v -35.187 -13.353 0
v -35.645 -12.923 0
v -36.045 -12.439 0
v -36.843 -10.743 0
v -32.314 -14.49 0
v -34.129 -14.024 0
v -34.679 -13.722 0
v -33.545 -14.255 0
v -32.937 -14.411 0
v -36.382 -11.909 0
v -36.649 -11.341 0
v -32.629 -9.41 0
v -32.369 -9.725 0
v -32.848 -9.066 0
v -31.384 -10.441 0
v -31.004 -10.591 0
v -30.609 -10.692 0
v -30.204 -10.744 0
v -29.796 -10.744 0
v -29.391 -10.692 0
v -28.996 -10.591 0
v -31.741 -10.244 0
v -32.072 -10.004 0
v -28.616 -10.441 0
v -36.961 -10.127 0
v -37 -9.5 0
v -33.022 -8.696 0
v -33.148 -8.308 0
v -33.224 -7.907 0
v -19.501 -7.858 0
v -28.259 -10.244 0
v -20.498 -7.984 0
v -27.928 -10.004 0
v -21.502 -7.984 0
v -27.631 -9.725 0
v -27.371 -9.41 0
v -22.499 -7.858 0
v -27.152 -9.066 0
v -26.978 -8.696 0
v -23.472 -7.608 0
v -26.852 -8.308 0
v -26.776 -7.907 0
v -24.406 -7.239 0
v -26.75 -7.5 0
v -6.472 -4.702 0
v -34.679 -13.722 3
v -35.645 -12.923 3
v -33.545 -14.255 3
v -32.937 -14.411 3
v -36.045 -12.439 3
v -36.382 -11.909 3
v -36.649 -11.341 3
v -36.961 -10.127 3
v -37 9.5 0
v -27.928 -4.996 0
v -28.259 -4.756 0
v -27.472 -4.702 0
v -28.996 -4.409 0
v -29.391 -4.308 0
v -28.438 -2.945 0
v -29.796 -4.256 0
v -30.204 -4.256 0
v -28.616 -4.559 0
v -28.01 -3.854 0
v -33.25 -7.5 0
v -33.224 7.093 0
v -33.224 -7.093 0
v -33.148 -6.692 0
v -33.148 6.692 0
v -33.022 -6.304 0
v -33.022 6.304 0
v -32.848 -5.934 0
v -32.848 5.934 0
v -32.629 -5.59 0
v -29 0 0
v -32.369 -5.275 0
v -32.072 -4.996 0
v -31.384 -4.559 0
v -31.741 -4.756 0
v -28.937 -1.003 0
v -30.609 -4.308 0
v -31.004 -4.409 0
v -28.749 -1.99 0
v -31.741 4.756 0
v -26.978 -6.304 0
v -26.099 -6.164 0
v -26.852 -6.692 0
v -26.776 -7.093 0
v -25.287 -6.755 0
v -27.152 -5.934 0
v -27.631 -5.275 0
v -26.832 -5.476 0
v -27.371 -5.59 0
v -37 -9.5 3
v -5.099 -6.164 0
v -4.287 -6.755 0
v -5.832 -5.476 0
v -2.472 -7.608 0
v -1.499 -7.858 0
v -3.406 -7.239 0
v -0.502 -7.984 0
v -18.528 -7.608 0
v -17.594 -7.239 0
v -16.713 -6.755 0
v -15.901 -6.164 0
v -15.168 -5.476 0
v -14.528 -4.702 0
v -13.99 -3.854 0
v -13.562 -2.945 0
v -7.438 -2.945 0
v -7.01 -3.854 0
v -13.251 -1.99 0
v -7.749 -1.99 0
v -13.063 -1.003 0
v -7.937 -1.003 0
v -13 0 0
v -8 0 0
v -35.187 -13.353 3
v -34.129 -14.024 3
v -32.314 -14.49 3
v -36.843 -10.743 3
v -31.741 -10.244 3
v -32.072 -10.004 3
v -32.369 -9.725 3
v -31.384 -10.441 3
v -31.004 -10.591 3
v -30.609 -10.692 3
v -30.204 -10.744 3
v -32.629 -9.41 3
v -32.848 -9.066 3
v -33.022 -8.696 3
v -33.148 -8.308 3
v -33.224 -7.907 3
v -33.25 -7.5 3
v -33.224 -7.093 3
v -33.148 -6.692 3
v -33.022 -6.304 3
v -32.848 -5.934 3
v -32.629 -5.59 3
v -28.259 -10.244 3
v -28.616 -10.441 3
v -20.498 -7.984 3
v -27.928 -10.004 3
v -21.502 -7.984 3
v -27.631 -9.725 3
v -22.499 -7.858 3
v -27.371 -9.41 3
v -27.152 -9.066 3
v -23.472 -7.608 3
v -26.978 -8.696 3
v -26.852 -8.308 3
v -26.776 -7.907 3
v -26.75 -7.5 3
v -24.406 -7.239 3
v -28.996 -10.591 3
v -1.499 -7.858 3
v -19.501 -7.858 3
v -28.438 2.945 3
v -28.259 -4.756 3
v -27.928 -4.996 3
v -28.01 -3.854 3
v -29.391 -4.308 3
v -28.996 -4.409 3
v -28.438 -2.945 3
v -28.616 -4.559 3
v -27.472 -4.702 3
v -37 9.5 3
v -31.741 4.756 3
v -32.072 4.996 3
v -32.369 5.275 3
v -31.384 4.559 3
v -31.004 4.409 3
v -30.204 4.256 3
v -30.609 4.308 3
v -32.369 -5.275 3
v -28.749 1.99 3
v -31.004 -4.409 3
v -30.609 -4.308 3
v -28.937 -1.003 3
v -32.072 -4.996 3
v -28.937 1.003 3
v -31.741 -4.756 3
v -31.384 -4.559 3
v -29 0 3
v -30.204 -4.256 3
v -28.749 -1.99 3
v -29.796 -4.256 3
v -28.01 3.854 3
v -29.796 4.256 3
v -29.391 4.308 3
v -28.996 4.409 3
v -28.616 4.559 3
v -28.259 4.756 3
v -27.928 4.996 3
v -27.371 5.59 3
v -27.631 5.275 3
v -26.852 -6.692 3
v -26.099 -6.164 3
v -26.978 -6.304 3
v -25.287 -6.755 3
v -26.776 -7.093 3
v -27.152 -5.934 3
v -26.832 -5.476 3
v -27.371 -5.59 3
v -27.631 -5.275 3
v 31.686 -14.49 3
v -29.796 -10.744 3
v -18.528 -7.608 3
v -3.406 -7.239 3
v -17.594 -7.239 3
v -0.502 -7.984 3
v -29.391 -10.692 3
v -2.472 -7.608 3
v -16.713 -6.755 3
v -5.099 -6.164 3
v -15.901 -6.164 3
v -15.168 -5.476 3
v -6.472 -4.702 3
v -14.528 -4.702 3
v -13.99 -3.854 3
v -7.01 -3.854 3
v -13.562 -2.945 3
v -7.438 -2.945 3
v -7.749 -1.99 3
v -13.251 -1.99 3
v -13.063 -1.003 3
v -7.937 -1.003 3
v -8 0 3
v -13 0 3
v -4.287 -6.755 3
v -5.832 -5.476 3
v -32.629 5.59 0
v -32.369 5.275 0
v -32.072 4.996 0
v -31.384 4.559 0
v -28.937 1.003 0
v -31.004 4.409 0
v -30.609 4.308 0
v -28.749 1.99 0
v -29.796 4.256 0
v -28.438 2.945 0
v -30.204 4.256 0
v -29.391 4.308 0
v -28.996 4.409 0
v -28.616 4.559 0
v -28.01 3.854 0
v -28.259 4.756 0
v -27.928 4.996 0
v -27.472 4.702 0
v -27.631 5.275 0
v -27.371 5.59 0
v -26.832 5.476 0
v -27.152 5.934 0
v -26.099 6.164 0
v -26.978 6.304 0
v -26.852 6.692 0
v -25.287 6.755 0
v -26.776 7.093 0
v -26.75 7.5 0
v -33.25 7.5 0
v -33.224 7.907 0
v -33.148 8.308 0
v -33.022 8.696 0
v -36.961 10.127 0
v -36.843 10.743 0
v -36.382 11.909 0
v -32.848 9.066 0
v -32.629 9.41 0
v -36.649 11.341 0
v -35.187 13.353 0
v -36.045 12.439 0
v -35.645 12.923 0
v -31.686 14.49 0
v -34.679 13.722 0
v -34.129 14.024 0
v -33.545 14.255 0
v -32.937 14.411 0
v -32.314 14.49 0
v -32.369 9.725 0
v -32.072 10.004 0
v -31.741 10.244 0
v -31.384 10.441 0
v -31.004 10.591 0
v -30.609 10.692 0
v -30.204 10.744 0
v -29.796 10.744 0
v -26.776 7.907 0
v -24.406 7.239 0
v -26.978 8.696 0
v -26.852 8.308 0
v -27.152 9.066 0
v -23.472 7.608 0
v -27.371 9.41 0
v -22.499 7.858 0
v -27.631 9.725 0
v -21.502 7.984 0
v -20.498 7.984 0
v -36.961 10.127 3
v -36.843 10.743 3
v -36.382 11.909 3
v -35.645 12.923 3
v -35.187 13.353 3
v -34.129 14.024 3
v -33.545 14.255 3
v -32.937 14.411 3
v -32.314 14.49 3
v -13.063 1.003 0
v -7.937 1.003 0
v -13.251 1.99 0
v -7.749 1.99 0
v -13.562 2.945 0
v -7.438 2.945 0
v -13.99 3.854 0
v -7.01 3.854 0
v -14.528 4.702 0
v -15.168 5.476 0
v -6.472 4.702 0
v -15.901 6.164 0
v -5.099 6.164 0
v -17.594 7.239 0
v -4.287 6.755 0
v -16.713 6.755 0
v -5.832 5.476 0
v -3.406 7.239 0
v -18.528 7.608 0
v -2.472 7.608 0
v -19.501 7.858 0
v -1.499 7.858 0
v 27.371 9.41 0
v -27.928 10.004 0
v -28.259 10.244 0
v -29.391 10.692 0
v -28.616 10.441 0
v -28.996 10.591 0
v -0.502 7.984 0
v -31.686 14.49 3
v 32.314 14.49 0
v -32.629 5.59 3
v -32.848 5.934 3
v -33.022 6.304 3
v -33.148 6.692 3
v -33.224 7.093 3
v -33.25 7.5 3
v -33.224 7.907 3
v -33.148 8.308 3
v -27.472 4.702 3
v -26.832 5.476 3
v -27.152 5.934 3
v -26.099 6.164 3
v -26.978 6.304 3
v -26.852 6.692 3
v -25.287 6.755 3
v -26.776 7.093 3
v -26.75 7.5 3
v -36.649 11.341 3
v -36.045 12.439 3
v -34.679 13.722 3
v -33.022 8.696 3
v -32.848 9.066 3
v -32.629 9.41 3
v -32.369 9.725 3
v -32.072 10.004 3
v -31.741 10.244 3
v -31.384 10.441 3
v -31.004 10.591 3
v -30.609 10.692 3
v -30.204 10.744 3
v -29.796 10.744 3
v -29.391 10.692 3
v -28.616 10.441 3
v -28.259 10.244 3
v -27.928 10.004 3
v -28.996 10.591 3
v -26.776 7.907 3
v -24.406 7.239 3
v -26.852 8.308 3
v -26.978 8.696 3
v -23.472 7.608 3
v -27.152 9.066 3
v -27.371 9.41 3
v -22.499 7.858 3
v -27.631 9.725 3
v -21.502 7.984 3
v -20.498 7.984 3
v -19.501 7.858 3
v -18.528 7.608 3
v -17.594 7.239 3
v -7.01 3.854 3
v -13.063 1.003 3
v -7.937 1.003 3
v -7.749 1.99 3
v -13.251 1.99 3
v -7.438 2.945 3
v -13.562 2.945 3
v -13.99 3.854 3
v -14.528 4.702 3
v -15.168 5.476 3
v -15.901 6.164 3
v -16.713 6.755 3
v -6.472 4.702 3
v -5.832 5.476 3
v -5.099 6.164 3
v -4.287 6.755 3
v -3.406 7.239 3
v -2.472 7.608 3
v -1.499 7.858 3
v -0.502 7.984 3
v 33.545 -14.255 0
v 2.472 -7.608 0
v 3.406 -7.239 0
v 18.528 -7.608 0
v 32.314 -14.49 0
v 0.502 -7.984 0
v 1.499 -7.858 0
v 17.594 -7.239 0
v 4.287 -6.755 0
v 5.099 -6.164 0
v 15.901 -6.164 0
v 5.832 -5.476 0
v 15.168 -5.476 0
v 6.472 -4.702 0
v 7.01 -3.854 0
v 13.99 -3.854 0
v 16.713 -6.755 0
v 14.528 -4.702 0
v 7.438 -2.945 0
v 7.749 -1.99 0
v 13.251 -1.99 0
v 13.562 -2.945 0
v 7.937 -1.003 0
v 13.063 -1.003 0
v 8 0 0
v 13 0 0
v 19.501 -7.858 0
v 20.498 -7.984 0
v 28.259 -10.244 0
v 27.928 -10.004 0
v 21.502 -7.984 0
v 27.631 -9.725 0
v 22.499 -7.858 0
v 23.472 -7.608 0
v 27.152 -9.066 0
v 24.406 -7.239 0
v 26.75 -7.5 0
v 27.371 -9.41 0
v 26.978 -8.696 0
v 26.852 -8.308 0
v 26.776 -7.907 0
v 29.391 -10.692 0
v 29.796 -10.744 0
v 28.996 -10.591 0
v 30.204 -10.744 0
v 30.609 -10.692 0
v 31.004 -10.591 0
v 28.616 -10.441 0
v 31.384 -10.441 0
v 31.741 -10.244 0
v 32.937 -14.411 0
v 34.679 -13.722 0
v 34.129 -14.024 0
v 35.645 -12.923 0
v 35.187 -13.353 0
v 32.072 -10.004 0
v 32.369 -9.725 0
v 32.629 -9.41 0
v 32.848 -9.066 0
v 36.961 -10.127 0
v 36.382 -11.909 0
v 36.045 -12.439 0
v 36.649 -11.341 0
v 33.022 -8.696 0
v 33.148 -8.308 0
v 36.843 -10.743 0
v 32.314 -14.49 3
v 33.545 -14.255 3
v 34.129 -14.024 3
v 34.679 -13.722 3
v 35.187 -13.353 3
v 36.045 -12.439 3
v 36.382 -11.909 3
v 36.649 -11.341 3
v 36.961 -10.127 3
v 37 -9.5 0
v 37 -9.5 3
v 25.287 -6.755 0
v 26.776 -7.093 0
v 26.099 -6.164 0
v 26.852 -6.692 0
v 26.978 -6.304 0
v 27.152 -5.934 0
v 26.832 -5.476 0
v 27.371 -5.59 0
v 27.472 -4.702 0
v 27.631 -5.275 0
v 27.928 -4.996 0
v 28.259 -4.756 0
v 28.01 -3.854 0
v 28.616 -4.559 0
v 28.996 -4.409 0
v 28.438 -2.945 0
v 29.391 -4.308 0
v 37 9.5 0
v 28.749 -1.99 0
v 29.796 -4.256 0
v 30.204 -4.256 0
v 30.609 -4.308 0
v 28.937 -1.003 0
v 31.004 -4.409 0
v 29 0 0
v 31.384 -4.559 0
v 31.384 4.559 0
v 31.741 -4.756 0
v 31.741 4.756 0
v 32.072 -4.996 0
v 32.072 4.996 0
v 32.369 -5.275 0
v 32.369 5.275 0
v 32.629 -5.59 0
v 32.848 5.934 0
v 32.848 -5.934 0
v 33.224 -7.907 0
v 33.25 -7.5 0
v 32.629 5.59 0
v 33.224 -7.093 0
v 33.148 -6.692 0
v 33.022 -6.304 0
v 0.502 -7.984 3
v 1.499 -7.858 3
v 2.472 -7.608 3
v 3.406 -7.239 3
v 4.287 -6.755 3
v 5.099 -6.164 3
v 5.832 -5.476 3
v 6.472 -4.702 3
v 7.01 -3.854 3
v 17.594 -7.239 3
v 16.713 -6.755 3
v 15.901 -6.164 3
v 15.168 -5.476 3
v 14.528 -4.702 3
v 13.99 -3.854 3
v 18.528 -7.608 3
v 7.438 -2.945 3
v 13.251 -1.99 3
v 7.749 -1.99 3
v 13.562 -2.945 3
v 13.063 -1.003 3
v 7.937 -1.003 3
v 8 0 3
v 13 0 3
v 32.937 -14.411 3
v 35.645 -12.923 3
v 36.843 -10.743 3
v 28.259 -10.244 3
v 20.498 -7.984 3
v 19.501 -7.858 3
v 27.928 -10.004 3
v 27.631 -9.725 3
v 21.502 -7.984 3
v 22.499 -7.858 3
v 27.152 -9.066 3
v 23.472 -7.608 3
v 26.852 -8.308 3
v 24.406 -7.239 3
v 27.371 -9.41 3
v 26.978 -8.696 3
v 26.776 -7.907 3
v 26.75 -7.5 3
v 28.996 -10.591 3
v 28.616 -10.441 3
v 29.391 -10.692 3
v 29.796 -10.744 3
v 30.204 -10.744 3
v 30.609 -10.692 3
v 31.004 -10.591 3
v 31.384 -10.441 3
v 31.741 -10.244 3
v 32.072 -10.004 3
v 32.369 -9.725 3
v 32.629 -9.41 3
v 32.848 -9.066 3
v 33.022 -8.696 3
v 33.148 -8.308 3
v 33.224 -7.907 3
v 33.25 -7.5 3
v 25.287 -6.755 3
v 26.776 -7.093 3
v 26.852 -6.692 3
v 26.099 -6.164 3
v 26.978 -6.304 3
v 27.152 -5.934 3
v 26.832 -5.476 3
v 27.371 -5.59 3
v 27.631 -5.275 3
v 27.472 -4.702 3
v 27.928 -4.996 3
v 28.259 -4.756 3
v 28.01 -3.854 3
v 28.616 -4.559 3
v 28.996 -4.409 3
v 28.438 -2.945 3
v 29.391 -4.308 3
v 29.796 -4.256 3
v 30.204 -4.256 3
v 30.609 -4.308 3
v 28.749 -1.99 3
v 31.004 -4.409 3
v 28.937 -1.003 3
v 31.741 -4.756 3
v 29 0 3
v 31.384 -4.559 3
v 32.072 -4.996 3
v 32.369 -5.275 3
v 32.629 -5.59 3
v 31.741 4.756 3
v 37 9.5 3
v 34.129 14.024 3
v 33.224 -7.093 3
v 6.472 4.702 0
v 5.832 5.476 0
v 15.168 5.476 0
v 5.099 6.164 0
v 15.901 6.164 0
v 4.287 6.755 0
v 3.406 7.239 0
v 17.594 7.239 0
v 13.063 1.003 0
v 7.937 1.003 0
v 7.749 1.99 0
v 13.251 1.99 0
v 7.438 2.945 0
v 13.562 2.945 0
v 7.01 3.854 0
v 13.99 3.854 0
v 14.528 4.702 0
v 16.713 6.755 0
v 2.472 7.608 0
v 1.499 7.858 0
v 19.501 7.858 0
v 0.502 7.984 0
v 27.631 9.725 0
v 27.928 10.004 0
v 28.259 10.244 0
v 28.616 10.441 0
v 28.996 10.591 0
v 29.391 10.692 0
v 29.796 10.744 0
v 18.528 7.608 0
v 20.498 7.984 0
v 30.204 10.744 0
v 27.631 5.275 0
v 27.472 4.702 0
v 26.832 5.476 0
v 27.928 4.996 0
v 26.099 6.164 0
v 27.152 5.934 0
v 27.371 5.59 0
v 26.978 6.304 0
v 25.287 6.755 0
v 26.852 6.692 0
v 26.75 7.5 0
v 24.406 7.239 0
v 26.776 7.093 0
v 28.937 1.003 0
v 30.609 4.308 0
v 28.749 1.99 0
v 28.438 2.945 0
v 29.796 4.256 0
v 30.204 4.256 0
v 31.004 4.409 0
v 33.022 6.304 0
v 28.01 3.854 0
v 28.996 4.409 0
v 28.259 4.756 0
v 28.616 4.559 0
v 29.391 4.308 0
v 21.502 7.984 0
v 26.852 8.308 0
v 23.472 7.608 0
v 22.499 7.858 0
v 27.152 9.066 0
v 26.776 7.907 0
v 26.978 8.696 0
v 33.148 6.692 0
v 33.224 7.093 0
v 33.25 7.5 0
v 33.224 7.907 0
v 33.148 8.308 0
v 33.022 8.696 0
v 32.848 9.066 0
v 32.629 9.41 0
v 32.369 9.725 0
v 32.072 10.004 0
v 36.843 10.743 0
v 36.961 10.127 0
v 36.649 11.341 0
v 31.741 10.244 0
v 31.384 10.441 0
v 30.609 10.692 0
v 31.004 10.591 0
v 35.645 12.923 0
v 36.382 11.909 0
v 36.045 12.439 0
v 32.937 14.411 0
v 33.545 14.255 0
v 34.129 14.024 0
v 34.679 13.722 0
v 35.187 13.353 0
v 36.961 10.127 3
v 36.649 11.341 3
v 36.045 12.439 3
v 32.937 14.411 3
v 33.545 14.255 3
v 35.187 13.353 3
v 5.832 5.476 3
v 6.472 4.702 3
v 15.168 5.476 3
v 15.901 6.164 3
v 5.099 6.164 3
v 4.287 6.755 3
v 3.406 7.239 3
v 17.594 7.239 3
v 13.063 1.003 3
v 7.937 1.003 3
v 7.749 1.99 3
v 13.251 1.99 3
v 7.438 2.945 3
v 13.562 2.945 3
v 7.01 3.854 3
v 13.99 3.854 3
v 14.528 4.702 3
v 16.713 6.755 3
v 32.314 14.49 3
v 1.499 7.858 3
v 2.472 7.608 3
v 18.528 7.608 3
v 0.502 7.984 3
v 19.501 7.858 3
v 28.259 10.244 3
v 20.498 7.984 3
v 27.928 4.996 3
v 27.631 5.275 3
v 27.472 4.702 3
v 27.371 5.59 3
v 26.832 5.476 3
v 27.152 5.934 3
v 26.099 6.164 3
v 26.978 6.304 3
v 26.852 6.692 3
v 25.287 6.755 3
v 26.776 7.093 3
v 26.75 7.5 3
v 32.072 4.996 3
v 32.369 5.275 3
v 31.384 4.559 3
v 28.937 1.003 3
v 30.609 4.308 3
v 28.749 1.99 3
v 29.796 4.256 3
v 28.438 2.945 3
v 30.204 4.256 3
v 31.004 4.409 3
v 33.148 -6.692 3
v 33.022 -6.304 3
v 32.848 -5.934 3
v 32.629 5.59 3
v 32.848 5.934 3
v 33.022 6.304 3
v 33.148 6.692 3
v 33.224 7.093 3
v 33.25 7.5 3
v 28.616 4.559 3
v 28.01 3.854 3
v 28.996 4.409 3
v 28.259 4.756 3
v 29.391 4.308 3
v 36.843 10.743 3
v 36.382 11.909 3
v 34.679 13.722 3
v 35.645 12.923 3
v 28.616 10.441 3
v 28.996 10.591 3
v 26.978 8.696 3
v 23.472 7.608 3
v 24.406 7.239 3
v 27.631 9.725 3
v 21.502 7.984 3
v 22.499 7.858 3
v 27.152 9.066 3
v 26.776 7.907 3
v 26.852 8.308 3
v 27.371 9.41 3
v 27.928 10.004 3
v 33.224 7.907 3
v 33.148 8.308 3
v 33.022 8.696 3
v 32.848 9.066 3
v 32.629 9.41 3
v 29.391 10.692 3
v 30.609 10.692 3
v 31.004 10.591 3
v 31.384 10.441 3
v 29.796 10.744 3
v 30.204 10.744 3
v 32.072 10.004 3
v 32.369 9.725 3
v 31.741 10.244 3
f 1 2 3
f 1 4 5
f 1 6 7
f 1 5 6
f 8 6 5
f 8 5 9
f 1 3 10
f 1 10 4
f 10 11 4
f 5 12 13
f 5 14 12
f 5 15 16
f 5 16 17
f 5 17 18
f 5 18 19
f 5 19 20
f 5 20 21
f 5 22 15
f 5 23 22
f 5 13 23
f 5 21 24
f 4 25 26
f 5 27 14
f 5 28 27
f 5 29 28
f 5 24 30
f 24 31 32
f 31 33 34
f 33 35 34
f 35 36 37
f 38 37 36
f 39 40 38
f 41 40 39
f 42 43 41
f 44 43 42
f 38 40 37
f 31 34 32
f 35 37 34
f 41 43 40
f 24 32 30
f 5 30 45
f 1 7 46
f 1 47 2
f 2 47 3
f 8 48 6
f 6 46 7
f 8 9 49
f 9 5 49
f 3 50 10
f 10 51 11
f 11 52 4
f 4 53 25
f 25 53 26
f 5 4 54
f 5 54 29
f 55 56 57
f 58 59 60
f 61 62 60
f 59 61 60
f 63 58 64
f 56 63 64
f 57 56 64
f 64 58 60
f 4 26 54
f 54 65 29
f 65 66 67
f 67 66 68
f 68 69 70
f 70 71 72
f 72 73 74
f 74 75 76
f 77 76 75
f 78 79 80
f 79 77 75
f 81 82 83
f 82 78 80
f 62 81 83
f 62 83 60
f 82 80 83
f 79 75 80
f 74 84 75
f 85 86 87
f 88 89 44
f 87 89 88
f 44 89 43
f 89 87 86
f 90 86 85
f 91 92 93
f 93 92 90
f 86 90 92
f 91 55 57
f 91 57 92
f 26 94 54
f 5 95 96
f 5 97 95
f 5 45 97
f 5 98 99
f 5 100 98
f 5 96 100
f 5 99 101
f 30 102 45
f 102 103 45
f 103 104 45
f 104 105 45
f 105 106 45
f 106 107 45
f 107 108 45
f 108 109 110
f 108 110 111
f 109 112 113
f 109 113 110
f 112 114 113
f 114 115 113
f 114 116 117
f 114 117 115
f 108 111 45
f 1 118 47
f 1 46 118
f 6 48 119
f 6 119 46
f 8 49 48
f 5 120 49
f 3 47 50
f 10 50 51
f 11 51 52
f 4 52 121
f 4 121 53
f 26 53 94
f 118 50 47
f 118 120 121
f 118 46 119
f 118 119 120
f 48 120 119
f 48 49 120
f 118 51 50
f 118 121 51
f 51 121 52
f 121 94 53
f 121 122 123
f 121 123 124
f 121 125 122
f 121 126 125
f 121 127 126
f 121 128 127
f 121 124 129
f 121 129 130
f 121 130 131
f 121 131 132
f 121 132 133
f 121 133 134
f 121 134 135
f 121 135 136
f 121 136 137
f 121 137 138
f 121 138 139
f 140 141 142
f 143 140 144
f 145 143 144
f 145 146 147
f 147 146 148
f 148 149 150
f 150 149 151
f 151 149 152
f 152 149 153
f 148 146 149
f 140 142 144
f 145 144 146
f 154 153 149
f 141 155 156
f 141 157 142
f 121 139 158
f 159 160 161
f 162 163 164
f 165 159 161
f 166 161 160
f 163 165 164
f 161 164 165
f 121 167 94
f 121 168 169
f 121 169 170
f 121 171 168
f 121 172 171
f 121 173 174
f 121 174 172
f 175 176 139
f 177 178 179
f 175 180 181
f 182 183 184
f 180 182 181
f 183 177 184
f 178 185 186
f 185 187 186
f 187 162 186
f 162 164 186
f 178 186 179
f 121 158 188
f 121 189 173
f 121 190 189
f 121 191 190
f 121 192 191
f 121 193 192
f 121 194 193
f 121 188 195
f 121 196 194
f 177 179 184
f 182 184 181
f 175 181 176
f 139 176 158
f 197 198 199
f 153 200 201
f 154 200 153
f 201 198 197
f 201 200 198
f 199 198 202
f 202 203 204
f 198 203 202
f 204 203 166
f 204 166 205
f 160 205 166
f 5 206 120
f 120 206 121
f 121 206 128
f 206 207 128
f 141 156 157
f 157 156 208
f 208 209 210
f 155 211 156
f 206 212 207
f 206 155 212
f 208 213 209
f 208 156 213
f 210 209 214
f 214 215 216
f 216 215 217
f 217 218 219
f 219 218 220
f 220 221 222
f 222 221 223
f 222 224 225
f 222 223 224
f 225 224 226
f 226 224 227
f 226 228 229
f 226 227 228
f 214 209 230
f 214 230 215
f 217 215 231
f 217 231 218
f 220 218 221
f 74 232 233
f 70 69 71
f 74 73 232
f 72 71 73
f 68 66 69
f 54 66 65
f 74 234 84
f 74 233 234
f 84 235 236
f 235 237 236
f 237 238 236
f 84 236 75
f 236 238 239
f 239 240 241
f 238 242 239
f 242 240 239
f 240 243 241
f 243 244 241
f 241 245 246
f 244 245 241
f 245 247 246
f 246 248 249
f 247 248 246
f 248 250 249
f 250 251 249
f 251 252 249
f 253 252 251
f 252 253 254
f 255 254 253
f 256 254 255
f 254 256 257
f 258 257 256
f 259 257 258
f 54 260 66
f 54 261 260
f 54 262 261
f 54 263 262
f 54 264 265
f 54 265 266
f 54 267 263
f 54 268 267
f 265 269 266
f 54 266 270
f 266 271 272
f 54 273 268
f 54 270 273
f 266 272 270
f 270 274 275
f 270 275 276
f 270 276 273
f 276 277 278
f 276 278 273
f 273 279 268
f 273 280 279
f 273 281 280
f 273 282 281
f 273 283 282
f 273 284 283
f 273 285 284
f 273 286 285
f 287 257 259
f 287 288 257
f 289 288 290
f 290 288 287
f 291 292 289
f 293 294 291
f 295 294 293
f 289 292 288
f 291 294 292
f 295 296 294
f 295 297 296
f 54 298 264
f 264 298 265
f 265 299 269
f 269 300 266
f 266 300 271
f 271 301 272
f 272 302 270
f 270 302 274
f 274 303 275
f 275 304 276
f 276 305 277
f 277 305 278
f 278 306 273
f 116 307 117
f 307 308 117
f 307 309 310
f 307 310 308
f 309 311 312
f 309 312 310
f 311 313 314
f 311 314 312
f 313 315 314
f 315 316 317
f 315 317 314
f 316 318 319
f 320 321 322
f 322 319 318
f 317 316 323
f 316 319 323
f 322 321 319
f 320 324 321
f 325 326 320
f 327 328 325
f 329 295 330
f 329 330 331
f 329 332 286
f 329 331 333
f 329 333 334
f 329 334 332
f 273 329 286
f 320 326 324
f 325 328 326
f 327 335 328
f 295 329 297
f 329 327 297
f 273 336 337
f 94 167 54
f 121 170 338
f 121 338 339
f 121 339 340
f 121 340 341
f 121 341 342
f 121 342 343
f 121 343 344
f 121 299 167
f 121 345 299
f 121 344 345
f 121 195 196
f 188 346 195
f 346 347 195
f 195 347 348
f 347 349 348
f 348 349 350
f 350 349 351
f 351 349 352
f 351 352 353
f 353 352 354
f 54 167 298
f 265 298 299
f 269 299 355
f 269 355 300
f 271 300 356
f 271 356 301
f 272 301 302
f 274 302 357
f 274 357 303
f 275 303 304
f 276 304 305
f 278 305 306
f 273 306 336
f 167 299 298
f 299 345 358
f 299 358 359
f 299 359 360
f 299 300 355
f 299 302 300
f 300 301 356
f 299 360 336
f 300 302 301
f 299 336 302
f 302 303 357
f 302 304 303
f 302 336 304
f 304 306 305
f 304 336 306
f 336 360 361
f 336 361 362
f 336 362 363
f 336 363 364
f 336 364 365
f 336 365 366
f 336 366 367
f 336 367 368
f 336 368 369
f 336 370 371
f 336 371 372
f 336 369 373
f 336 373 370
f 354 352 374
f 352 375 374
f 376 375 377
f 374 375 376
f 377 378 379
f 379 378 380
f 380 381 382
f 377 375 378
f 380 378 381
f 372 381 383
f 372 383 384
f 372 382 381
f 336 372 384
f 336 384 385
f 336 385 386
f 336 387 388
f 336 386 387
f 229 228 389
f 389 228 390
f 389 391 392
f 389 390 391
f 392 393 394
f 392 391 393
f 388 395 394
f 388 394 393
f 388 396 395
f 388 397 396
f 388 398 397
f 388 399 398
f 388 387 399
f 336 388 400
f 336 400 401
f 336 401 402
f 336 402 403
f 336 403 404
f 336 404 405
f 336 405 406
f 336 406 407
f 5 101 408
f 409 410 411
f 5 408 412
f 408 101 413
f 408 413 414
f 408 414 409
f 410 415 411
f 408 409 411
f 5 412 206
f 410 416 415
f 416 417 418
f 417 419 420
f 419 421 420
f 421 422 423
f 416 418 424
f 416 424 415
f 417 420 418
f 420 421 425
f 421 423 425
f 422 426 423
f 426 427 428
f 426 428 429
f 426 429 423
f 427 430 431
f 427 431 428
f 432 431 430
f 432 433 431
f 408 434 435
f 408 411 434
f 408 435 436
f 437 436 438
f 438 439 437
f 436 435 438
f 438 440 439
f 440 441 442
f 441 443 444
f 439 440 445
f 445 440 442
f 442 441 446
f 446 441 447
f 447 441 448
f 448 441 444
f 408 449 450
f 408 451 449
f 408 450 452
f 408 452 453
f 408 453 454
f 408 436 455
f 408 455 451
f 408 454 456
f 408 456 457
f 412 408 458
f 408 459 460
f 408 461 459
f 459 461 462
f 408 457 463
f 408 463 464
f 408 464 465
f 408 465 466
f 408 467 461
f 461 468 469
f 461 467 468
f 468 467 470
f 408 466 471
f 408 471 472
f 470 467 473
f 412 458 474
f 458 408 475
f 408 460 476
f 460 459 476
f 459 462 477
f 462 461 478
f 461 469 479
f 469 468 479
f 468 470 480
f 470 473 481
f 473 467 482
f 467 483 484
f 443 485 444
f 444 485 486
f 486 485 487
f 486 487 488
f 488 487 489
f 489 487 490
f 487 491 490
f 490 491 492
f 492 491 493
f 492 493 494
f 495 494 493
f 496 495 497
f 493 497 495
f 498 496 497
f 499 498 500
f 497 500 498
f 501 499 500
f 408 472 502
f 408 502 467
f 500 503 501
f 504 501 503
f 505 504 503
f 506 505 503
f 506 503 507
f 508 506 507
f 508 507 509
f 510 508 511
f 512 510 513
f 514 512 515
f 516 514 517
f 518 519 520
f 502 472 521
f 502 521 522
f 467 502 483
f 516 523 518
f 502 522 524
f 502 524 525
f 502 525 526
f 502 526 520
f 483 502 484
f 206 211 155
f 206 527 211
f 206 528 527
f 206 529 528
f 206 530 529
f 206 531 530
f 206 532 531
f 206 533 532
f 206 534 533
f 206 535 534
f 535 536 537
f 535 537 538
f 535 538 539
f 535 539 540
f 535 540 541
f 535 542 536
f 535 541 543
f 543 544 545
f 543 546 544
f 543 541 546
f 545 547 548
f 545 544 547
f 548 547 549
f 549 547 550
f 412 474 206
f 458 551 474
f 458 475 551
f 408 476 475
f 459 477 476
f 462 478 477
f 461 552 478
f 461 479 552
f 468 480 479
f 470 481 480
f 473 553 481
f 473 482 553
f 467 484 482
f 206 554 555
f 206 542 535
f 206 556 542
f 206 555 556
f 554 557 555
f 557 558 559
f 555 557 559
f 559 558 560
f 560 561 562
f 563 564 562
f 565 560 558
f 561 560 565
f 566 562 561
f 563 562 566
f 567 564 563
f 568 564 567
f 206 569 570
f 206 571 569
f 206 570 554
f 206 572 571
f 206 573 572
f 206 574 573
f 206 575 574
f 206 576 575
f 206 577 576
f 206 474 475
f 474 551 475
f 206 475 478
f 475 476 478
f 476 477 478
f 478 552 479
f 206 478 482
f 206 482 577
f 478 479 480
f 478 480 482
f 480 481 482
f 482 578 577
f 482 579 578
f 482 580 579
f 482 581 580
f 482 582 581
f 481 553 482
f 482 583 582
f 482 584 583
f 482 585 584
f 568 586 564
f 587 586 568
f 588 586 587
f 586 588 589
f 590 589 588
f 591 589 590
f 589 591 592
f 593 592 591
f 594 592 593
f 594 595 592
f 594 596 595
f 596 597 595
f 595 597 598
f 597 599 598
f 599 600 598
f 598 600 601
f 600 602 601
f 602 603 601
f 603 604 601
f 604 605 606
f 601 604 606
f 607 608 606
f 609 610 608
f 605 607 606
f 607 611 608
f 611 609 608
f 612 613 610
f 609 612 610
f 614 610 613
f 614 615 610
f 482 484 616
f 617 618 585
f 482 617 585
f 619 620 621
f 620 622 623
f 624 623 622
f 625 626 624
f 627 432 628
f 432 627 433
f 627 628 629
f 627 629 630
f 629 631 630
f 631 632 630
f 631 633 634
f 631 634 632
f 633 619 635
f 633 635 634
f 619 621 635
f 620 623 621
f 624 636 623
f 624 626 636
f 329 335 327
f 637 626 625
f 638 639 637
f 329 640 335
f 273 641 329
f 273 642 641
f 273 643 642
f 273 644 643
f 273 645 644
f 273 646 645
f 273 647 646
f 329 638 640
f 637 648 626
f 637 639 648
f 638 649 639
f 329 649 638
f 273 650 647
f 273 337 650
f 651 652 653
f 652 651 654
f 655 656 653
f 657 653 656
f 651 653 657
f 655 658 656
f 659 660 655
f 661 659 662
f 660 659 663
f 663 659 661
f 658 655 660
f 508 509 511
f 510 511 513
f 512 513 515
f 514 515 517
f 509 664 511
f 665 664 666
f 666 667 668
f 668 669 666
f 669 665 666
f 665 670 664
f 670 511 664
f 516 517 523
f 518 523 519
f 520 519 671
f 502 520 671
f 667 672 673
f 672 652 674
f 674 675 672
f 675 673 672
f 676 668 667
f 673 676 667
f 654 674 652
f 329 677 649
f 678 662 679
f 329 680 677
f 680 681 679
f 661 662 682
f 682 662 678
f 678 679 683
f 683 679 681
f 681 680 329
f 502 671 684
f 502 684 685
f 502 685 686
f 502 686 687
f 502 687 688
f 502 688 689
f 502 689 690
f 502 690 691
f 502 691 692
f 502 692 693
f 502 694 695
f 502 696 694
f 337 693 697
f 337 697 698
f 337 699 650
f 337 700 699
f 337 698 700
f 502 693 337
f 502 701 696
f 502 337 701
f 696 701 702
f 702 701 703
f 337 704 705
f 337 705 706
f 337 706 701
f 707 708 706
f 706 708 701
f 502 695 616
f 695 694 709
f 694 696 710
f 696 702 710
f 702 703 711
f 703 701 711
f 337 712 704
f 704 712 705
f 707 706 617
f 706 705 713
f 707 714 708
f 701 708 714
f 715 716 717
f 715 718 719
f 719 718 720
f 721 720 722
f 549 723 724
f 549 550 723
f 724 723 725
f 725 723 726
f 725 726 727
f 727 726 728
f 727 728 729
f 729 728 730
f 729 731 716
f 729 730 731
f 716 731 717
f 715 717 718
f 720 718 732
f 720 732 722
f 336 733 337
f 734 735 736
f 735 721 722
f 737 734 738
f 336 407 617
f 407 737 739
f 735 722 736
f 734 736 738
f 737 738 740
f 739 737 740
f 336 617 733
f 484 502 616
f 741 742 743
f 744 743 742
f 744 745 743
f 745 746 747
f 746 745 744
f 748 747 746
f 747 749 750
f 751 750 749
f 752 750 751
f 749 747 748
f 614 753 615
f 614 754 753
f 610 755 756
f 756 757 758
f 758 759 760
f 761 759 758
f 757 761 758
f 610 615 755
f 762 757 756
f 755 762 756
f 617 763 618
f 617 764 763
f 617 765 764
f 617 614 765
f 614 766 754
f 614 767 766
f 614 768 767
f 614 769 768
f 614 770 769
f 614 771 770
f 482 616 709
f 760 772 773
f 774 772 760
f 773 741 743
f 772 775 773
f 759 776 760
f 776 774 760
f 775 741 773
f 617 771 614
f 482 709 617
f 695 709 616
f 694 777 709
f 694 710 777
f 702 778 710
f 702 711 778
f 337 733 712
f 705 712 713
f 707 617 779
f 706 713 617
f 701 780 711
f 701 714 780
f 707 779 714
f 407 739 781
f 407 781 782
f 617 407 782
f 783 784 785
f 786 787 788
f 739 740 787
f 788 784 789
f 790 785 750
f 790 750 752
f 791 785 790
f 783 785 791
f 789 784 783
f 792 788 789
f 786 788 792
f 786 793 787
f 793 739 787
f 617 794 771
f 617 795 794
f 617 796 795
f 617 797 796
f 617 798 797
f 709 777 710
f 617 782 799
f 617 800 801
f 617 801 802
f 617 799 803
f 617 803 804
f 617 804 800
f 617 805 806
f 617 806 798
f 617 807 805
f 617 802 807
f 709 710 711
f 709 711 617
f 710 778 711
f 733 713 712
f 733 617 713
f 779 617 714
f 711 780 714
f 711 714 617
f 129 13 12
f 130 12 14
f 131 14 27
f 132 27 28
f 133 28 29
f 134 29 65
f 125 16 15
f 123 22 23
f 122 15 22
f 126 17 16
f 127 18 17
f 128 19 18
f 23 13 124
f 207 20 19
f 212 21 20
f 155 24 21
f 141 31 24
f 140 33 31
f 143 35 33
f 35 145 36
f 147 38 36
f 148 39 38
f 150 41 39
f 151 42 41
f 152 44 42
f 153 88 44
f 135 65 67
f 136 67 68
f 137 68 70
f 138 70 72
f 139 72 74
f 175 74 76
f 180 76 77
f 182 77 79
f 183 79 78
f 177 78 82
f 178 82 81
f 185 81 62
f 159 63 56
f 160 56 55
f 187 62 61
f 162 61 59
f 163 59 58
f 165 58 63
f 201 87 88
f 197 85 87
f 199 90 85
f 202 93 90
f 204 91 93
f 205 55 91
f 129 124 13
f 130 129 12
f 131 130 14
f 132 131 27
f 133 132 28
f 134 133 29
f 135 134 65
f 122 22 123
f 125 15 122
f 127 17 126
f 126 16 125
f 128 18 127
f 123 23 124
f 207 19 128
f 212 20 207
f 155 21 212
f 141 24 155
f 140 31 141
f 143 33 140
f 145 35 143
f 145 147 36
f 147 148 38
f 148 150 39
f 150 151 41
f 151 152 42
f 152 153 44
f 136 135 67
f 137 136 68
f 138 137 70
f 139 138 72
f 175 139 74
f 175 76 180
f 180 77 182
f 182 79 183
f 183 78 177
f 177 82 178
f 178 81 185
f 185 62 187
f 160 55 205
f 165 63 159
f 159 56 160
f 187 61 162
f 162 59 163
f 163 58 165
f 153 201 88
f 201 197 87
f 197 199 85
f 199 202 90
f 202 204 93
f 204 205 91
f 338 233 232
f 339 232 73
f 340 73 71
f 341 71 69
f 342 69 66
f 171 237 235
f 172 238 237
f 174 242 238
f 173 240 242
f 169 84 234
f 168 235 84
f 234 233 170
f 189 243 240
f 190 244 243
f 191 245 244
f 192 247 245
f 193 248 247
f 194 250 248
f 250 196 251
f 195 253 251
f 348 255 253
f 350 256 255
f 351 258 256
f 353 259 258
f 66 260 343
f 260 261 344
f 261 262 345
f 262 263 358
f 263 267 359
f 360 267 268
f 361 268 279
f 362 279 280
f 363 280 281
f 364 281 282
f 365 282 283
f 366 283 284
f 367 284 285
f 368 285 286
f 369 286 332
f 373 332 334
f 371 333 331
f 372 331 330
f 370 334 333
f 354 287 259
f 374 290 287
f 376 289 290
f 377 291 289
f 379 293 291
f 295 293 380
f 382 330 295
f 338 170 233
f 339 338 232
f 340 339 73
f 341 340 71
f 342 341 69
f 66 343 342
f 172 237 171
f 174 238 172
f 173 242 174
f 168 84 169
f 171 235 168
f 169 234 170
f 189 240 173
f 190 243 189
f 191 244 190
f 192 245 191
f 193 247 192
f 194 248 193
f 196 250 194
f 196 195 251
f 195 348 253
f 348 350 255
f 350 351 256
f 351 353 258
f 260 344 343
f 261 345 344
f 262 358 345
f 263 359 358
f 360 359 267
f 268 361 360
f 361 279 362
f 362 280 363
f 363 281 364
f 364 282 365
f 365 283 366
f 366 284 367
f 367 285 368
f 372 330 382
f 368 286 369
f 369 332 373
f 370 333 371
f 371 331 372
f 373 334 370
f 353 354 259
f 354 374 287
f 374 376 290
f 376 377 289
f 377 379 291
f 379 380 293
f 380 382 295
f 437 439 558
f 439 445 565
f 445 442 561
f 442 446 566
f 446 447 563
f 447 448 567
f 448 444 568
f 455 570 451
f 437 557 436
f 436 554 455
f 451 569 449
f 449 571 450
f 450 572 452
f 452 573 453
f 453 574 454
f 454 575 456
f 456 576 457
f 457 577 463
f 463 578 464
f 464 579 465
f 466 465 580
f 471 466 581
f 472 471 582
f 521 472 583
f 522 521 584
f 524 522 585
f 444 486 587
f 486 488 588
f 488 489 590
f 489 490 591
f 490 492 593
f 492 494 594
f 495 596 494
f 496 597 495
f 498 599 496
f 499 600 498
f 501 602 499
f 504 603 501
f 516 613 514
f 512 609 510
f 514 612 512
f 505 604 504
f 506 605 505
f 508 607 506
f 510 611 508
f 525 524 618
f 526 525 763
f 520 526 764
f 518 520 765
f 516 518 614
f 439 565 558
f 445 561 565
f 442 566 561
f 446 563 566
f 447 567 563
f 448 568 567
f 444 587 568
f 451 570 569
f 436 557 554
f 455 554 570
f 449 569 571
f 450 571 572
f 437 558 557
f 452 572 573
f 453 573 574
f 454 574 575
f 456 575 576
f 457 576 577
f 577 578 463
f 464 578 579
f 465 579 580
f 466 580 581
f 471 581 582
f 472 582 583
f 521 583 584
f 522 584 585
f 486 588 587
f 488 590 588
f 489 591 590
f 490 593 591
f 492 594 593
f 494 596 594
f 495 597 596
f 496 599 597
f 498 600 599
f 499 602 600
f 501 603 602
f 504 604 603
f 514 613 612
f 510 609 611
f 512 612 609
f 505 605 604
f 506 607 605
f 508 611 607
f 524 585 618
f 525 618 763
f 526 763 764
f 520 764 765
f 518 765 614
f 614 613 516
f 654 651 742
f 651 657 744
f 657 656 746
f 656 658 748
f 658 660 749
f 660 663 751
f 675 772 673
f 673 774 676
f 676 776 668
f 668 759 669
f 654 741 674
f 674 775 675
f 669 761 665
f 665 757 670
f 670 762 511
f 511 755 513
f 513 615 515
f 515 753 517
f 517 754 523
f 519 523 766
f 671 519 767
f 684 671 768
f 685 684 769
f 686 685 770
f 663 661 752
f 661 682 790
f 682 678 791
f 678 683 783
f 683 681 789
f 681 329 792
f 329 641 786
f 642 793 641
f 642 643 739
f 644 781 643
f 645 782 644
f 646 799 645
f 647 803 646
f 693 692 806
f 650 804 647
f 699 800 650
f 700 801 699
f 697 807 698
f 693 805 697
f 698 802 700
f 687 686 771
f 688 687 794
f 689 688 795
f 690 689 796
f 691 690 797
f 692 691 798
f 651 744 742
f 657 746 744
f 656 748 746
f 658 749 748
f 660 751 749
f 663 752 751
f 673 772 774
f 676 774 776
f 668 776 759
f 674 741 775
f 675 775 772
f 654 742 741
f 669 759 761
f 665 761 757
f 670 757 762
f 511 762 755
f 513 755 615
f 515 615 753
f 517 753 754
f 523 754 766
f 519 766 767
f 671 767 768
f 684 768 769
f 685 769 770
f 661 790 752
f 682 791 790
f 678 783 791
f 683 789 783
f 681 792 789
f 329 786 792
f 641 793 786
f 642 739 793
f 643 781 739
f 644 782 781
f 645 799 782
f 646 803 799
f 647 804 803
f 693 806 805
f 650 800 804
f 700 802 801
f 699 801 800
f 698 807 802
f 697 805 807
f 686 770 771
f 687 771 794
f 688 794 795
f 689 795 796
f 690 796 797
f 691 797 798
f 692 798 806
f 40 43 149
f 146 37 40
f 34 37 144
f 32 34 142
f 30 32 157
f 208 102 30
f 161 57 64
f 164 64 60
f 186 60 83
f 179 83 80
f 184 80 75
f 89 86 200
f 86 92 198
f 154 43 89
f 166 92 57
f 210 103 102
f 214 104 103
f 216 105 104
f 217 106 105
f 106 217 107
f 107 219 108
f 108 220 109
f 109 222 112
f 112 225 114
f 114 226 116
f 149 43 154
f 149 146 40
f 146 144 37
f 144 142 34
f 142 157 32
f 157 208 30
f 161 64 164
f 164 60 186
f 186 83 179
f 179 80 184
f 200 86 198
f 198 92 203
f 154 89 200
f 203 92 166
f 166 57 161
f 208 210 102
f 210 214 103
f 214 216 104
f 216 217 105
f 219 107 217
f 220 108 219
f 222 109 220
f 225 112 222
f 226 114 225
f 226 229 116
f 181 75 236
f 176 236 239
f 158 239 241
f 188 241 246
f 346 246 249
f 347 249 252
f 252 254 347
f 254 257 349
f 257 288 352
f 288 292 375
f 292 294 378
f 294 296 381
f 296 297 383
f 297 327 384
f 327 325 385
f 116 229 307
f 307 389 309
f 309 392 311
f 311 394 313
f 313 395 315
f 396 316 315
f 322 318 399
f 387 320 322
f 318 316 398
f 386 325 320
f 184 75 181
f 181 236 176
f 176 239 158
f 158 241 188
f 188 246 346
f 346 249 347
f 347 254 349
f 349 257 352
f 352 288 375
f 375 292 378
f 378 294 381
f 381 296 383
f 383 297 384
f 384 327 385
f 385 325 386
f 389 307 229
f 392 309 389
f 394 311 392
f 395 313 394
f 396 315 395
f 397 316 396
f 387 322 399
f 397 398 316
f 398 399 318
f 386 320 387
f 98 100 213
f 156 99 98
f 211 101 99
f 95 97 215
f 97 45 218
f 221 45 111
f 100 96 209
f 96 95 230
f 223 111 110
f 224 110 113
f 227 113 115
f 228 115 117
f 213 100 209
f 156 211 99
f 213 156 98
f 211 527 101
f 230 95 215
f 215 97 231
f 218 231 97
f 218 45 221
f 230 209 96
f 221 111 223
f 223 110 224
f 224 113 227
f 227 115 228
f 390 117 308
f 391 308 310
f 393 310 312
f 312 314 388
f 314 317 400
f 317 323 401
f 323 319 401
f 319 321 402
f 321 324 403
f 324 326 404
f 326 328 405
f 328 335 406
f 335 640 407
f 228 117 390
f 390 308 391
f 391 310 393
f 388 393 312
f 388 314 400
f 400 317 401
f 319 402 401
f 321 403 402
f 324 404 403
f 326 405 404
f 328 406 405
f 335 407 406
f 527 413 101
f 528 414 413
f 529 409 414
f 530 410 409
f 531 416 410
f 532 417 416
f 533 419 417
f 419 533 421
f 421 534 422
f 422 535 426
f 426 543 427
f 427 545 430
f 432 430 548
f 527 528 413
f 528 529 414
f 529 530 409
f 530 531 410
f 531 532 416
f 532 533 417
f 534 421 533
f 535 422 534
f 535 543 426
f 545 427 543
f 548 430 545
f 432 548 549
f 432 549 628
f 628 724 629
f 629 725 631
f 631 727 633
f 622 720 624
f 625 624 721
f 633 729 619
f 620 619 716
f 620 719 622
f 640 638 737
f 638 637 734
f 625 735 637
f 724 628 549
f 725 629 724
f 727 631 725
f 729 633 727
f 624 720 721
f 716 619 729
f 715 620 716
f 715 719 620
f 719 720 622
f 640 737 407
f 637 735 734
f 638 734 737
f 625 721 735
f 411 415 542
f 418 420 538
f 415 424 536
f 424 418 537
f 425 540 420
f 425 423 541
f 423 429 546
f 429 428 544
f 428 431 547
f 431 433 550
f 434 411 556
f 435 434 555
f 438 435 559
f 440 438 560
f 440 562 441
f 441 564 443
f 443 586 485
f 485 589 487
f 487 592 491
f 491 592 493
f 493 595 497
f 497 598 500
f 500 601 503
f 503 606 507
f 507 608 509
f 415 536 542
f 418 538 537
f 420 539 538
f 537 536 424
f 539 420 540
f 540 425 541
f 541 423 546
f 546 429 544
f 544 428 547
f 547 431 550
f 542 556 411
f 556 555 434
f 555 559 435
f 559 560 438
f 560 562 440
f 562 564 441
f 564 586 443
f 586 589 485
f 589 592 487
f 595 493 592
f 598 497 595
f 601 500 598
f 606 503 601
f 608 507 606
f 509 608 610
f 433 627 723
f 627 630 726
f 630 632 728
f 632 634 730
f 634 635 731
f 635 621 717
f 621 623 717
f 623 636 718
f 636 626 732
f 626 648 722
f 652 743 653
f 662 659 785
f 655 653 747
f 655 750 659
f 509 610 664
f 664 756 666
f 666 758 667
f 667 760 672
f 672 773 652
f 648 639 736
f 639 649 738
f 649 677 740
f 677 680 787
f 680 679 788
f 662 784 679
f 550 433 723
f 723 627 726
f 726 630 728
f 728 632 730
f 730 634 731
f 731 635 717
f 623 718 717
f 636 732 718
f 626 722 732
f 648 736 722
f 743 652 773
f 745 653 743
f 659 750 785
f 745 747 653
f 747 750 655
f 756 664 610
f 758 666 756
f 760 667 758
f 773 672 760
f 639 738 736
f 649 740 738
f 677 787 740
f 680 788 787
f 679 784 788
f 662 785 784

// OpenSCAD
$fn = 50;

difference() {
	union() {
		hull() {
			translate(v = [-32.0, 9.5, 0]) {
				cylinder(h = 3, r = 5);
			}
			translate(v = [32.0, 9.5, 0]) {
				cylinder(h = 3, r = 5);
			}
			translate(v = [-32.0, -9.5, 0]) {
				cylinder(h = 3, r = 5);
			}
			translate(v = [32.0, -9.5, 0]) {
				cylinder(h = 3, r = 5);
			}
		}
	}
	union() {
		translate(v = [-30.0, -7.5, -100.0]) {
			cylinder(h = 200, r = 3.25);
		}
		translate(v = [-30.0, 7.5, -100.0]) {
			cylinder(h = 200, r = 3.25);
		}
		translate(v = [30.0, -7.5, -100.0]) {
			cylinder(h = 200, r = 3.25);
		}
		translate(v = [30.0, 7.5, -100.0]) {
			cylinder(h = 200, r = 3.25);
		}
		translate(v = [-30.0, -7.5, -100.0]) {
			cylinder(h = 200, r = 1.8);
		}
		translate(v = [-30.0, 7.5, -100.0]) {
			cylinder(h = 200, r = 1.8);
		}
		translate(v = [30.0, -7.5, -100.0]) {
			cylinder(h = 200, r = 1.8);
		}
		translate(v = [30.0, 7.5, -100.0]) {
			cylinder(h = 200, r = 1.8);
		}
		translate(v = [-21.0, 0, 0.0]) {
			cylinder(h = 3, r = 8.0);
		}
		cylinder(h = 3, r = 8.0);
		translate(v = [21.0, 0, 0.0]) {
			cylinder(h = 3, r = 8.0);
		}
	}
}
